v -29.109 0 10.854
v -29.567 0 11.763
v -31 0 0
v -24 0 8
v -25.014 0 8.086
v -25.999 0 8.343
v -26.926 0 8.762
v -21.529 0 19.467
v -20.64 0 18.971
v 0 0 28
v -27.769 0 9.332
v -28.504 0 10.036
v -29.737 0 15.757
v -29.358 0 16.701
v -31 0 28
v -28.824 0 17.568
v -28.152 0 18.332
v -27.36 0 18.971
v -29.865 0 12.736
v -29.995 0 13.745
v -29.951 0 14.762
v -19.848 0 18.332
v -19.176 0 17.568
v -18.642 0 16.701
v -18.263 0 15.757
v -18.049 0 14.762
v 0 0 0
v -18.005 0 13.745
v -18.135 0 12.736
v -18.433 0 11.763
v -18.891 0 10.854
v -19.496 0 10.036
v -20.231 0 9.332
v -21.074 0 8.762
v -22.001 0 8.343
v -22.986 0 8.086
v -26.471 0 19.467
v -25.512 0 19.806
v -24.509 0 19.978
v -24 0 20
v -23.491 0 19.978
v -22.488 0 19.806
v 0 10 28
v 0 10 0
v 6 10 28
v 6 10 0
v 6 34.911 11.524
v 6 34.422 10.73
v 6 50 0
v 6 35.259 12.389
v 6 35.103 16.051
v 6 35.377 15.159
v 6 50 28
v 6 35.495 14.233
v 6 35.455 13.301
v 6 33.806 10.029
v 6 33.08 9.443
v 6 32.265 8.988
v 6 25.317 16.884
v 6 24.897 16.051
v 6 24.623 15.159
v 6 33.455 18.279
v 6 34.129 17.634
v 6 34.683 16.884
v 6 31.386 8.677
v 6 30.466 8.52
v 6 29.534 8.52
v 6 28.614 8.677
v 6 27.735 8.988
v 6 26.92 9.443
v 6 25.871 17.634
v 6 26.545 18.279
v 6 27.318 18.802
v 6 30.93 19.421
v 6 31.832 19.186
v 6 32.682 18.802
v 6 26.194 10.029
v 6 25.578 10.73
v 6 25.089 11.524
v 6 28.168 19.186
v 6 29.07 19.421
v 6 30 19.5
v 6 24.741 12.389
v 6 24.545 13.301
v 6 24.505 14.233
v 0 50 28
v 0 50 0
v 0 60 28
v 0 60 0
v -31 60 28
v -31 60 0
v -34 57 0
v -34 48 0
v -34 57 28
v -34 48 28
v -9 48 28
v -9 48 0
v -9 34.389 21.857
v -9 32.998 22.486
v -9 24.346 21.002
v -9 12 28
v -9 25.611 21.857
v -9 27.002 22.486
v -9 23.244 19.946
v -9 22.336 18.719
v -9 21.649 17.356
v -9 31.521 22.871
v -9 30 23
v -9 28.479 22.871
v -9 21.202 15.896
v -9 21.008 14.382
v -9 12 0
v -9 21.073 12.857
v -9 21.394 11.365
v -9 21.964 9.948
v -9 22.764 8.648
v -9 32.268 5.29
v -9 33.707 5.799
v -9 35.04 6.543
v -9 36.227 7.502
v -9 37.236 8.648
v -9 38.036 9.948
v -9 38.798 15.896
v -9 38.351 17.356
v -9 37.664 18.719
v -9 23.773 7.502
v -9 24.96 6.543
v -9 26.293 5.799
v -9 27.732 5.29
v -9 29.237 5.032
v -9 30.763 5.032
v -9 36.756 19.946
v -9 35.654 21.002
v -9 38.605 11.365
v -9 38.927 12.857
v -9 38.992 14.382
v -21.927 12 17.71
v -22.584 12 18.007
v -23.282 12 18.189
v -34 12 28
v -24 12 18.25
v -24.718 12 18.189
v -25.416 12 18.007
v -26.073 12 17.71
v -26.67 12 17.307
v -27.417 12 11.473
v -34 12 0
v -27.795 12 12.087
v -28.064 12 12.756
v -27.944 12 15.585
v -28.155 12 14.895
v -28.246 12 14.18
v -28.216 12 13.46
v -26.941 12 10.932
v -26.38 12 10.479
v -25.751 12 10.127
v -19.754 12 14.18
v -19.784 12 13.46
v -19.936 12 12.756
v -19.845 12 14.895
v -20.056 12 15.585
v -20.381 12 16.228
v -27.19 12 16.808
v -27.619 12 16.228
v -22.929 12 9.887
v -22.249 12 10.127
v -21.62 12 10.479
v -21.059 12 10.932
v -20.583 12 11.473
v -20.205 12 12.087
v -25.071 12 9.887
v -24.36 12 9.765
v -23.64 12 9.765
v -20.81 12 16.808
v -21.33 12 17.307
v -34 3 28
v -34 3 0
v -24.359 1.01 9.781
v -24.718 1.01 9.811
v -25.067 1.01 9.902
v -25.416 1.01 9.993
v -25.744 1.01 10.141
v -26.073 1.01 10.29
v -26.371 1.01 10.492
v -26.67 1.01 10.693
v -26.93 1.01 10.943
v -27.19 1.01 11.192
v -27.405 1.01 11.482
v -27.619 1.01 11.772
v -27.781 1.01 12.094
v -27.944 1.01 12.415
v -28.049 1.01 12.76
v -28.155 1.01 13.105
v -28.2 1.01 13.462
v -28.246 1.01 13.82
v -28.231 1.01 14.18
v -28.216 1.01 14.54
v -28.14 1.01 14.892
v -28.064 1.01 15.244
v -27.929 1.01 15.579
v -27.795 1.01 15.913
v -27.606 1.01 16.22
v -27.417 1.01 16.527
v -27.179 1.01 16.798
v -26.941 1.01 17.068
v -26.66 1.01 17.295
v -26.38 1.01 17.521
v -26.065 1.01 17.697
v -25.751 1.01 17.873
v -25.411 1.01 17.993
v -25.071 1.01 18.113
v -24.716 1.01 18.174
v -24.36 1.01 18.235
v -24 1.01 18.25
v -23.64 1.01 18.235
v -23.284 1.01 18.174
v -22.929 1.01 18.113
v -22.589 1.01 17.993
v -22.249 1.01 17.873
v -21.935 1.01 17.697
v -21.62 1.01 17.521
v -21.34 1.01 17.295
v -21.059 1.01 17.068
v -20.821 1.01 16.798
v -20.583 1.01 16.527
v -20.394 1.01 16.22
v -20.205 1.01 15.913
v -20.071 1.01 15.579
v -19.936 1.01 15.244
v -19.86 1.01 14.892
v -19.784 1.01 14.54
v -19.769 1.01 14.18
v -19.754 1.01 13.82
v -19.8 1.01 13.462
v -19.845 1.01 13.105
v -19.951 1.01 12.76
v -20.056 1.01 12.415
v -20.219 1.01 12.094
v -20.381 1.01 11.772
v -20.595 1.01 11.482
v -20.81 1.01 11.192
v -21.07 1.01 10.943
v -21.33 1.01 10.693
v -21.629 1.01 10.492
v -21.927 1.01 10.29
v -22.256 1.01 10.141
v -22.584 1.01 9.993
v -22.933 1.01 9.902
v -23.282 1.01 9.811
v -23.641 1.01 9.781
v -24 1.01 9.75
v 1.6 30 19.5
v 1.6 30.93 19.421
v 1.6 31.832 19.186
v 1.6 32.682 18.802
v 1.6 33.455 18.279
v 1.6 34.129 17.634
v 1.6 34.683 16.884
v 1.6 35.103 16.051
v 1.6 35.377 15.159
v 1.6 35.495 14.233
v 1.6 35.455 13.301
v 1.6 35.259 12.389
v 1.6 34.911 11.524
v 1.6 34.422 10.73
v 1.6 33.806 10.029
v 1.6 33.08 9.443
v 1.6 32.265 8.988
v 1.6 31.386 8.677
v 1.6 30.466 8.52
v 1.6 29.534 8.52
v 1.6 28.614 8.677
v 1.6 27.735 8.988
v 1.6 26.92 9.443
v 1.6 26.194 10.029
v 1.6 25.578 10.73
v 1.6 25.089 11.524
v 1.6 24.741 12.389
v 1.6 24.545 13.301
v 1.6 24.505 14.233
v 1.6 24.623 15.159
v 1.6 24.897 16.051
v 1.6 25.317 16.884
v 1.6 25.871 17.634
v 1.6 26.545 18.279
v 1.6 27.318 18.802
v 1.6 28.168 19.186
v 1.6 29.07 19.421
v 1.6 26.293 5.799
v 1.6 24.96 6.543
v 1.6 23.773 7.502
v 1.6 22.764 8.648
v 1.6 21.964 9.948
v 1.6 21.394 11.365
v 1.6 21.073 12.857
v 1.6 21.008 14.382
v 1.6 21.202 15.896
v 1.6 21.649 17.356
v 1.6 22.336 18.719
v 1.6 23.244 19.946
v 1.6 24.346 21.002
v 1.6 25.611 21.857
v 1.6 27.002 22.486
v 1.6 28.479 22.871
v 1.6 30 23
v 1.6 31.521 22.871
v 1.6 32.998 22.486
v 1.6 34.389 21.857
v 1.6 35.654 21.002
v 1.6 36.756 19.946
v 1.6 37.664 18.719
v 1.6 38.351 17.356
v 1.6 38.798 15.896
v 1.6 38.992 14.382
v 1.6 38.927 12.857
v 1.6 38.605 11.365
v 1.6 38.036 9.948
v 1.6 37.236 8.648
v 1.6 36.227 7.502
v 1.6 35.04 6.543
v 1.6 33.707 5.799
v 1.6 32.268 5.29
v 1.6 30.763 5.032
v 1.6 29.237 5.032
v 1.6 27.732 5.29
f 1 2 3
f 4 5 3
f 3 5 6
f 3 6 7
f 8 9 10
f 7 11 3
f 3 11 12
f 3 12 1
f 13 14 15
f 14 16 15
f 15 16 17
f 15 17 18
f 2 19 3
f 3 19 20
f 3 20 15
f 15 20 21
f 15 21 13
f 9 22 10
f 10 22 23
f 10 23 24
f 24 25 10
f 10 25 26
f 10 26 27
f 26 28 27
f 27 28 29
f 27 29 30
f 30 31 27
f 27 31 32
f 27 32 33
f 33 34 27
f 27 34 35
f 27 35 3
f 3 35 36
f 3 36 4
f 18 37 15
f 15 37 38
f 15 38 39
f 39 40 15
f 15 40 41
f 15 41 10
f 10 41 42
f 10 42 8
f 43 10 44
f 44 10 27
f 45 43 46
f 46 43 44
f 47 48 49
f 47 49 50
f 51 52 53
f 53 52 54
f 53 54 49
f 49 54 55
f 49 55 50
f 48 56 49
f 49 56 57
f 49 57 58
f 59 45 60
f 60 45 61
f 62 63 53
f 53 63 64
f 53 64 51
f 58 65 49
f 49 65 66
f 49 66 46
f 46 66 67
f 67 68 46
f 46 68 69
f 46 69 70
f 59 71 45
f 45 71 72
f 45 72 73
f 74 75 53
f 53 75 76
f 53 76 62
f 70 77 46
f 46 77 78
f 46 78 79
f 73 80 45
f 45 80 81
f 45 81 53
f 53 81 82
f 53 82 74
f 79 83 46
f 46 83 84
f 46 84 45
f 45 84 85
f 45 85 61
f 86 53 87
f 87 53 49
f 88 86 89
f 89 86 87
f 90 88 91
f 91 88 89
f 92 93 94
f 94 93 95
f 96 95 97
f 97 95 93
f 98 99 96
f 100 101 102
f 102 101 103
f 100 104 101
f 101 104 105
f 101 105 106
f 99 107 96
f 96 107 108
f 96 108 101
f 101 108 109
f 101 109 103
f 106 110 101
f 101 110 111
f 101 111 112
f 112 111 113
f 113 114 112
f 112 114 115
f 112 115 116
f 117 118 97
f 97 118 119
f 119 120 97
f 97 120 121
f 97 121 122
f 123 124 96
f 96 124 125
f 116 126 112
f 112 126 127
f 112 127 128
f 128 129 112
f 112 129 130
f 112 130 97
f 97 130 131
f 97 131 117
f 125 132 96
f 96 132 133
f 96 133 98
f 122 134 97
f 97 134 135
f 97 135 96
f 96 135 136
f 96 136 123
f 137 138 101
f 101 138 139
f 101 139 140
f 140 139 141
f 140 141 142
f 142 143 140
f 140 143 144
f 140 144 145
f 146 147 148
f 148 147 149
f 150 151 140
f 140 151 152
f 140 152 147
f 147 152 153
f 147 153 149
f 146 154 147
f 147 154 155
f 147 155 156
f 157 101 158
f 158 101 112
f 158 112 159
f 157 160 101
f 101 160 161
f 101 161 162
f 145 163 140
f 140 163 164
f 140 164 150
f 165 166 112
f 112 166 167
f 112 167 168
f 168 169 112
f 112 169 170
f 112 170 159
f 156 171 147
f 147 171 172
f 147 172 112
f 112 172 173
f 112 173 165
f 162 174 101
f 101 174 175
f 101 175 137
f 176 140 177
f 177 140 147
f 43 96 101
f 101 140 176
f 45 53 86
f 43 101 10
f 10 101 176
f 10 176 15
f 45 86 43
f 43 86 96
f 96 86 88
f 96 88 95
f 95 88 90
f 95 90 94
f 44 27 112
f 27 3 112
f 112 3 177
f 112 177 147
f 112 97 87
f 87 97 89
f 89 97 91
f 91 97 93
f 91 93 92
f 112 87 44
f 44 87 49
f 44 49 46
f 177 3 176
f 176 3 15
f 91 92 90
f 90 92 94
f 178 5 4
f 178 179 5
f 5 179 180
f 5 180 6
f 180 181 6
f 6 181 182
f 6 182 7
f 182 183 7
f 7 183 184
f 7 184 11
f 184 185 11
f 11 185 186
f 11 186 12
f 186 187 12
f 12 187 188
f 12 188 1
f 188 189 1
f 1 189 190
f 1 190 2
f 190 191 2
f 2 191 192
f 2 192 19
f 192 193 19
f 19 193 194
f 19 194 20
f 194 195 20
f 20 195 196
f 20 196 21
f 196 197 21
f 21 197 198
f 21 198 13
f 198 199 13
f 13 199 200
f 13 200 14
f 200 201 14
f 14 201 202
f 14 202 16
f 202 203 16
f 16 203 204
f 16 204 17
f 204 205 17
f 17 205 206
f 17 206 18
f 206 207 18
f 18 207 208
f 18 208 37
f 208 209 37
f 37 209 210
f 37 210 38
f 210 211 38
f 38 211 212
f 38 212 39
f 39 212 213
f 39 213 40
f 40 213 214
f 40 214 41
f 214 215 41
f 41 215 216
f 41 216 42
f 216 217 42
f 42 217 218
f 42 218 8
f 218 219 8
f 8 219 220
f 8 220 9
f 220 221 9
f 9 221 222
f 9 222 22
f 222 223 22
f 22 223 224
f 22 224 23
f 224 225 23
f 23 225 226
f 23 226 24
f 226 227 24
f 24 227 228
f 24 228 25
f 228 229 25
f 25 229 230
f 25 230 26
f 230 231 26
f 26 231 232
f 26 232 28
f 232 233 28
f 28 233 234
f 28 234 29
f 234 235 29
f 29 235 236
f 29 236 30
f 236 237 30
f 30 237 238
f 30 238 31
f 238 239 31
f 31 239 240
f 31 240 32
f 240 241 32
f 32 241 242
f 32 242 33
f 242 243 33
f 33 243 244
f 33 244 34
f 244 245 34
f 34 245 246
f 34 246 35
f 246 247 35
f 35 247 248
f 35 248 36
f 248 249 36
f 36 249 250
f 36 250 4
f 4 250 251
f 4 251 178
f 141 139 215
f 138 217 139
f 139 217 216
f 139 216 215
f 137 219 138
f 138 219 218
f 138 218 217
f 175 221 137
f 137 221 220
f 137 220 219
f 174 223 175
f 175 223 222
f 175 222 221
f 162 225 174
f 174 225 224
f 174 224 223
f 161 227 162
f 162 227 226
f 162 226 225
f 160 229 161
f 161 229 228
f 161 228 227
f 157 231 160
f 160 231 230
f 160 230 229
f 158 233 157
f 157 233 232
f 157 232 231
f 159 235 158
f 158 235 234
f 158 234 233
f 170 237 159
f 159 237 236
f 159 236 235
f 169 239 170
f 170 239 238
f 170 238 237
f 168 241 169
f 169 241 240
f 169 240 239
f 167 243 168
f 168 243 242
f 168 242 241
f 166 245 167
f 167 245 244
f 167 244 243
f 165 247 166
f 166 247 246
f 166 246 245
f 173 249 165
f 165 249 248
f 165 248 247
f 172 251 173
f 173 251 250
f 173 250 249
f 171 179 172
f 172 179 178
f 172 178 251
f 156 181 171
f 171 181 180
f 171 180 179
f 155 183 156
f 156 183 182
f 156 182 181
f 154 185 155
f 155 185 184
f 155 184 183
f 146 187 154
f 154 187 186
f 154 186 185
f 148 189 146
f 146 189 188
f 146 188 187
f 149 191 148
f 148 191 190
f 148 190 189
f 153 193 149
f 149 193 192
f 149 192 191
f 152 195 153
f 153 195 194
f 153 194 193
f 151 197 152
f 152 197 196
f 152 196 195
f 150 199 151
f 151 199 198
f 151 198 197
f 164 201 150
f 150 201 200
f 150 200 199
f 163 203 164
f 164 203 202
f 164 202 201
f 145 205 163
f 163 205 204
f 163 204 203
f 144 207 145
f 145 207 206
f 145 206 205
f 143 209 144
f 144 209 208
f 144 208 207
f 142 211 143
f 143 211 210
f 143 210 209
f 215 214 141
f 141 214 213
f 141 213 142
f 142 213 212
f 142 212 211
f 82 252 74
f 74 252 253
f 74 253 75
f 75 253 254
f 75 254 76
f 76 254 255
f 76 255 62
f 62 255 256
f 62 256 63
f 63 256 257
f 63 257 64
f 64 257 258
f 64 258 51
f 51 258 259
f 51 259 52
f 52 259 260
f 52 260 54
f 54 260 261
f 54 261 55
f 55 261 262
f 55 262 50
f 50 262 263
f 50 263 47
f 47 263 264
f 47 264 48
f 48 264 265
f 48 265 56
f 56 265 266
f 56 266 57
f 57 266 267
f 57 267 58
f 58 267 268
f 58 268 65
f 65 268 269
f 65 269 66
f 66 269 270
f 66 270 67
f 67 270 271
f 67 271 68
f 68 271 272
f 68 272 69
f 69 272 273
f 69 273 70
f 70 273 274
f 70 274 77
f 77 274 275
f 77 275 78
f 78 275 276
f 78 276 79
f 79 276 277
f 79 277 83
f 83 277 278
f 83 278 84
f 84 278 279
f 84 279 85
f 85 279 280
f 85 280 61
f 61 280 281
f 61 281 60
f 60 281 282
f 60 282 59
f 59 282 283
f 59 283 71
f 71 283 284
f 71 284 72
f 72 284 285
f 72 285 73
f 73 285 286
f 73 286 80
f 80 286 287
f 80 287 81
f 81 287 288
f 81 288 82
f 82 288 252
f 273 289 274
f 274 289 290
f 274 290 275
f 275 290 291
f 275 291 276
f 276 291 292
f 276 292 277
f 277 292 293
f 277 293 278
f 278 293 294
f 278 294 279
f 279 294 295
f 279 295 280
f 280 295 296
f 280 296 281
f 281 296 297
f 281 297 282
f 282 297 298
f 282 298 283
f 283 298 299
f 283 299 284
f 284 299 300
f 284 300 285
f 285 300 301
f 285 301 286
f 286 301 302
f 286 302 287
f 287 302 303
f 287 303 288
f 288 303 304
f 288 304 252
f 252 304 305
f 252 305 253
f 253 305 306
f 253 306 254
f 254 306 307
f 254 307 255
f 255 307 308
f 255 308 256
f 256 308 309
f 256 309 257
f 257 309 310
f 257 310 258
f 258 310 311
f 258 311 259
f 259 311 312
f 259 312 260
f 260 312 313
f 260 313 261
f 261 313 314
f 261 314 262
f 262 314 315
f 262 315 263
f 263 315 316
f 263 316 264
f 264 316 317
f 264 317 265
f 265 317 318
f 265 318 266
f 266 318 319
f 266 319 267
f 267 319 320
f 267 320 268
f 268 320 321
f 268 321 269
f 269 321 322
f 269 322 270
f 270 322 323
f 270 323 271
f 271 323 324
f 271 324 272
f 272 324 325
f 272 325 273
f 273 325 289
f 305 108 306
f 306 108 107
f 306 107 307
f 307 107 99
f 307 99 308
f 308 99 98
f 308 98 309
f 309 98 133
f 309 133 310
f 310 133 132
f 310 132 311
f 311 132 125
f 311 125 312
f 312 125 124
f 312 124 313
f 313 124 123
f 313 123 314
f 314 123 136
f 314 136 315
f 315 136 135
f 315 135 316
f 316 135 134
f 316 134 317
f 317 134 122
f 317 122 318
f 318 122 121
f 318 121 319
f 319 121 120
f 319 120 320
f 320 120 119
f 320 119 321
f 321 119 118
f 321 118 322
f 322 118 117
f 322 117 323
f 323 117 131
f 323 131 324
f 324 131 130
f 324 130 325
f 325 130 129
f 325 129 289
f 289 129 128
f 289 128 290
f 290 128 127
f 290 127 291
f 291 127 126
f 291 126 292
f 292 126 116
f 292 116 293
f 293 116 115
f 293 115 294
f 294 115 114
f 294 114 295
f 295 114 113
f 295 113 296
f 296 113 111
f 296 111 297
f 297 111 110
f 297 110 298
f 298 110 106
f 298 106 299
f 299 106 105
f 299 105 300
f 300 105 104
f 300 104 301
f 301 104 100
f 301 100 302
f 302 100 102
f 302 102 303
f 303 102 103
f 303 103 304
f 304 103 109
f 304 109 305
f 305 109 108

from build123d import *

# Parameters (mm, degrees)
BOSS_EXTRU_1_DEPTH                                 = 28
CHANFREIN1_SIZE                                    = 3
CHAMBRAGE_POUR_VIS_T_TE_HEXAGONALE_M10_D           = 11
CHAMBRAGE_POUR_VIS_T_TE_HEXAGONALE_M10_CBORE_D     = 18
CHAMBRAGE_POUR_VIS_T_TE_HEXAGONALE_M10_CBORE_DEPTH = 10.6


with BuildPart() as part:
    # Esquisse1 → Boss.-Extru.1 (new body)
    with BuildSketch(Plane.XY):
        Polygon((0, 0), (0, 10), (6, 10), (6, 50), (0, 50), (0, 60), (-34, 60), (-34, 48), (-9, 48), (-9, 12), (-34, 12), (-34, 0), align=None)
    extrude(amount=BOSS_EXTRU_1_DEPTH)

    # Chanfrein1
    chanfrein1_edges = [part.edges().sort_by_distance(p)[0] for p in [
        (-34, 0, 14),
        (-34, 60, 14),
    ]]
    chamfer(chanfrein1_edges, length=CHANFREIN1_SIZE)

    # Esquisse3 → Trou taraudé M101 (revolve, cut)
    with BuildSketch(Plane(origin=(-24, 12, 14), x_dir=(0, 0, 1), z_dir=(1, 0, 0))):
        Polygon((0, 0), (0, 12), (6, 12), (4.25, 10.989637029), (4.25, 0), align=None)
    revolve(axis=Axis((-24, 18.35, 14), (0, -1, 0)), mode=Mode.SUBTRACT)

    # Chambrage pour vis à tête hexagonale M101 (through all)
    with Locations(Plane.ZY.offset(9)):
        with Locations((14, 30)):
            CounterBoreHole(CHAMBRAGE_POUR_VIS_T_TE_HEXAGONALE_M10_D / 2, CHAMBRAGE_POUR_VIS_T_TE_HEXAGONALE_M10_CBORE_D / 2, CHAMBRAGE_POUR_VIS_T_TE_HEXAGONALE_M10_CBORE_DEPTH)


solid = part.part
